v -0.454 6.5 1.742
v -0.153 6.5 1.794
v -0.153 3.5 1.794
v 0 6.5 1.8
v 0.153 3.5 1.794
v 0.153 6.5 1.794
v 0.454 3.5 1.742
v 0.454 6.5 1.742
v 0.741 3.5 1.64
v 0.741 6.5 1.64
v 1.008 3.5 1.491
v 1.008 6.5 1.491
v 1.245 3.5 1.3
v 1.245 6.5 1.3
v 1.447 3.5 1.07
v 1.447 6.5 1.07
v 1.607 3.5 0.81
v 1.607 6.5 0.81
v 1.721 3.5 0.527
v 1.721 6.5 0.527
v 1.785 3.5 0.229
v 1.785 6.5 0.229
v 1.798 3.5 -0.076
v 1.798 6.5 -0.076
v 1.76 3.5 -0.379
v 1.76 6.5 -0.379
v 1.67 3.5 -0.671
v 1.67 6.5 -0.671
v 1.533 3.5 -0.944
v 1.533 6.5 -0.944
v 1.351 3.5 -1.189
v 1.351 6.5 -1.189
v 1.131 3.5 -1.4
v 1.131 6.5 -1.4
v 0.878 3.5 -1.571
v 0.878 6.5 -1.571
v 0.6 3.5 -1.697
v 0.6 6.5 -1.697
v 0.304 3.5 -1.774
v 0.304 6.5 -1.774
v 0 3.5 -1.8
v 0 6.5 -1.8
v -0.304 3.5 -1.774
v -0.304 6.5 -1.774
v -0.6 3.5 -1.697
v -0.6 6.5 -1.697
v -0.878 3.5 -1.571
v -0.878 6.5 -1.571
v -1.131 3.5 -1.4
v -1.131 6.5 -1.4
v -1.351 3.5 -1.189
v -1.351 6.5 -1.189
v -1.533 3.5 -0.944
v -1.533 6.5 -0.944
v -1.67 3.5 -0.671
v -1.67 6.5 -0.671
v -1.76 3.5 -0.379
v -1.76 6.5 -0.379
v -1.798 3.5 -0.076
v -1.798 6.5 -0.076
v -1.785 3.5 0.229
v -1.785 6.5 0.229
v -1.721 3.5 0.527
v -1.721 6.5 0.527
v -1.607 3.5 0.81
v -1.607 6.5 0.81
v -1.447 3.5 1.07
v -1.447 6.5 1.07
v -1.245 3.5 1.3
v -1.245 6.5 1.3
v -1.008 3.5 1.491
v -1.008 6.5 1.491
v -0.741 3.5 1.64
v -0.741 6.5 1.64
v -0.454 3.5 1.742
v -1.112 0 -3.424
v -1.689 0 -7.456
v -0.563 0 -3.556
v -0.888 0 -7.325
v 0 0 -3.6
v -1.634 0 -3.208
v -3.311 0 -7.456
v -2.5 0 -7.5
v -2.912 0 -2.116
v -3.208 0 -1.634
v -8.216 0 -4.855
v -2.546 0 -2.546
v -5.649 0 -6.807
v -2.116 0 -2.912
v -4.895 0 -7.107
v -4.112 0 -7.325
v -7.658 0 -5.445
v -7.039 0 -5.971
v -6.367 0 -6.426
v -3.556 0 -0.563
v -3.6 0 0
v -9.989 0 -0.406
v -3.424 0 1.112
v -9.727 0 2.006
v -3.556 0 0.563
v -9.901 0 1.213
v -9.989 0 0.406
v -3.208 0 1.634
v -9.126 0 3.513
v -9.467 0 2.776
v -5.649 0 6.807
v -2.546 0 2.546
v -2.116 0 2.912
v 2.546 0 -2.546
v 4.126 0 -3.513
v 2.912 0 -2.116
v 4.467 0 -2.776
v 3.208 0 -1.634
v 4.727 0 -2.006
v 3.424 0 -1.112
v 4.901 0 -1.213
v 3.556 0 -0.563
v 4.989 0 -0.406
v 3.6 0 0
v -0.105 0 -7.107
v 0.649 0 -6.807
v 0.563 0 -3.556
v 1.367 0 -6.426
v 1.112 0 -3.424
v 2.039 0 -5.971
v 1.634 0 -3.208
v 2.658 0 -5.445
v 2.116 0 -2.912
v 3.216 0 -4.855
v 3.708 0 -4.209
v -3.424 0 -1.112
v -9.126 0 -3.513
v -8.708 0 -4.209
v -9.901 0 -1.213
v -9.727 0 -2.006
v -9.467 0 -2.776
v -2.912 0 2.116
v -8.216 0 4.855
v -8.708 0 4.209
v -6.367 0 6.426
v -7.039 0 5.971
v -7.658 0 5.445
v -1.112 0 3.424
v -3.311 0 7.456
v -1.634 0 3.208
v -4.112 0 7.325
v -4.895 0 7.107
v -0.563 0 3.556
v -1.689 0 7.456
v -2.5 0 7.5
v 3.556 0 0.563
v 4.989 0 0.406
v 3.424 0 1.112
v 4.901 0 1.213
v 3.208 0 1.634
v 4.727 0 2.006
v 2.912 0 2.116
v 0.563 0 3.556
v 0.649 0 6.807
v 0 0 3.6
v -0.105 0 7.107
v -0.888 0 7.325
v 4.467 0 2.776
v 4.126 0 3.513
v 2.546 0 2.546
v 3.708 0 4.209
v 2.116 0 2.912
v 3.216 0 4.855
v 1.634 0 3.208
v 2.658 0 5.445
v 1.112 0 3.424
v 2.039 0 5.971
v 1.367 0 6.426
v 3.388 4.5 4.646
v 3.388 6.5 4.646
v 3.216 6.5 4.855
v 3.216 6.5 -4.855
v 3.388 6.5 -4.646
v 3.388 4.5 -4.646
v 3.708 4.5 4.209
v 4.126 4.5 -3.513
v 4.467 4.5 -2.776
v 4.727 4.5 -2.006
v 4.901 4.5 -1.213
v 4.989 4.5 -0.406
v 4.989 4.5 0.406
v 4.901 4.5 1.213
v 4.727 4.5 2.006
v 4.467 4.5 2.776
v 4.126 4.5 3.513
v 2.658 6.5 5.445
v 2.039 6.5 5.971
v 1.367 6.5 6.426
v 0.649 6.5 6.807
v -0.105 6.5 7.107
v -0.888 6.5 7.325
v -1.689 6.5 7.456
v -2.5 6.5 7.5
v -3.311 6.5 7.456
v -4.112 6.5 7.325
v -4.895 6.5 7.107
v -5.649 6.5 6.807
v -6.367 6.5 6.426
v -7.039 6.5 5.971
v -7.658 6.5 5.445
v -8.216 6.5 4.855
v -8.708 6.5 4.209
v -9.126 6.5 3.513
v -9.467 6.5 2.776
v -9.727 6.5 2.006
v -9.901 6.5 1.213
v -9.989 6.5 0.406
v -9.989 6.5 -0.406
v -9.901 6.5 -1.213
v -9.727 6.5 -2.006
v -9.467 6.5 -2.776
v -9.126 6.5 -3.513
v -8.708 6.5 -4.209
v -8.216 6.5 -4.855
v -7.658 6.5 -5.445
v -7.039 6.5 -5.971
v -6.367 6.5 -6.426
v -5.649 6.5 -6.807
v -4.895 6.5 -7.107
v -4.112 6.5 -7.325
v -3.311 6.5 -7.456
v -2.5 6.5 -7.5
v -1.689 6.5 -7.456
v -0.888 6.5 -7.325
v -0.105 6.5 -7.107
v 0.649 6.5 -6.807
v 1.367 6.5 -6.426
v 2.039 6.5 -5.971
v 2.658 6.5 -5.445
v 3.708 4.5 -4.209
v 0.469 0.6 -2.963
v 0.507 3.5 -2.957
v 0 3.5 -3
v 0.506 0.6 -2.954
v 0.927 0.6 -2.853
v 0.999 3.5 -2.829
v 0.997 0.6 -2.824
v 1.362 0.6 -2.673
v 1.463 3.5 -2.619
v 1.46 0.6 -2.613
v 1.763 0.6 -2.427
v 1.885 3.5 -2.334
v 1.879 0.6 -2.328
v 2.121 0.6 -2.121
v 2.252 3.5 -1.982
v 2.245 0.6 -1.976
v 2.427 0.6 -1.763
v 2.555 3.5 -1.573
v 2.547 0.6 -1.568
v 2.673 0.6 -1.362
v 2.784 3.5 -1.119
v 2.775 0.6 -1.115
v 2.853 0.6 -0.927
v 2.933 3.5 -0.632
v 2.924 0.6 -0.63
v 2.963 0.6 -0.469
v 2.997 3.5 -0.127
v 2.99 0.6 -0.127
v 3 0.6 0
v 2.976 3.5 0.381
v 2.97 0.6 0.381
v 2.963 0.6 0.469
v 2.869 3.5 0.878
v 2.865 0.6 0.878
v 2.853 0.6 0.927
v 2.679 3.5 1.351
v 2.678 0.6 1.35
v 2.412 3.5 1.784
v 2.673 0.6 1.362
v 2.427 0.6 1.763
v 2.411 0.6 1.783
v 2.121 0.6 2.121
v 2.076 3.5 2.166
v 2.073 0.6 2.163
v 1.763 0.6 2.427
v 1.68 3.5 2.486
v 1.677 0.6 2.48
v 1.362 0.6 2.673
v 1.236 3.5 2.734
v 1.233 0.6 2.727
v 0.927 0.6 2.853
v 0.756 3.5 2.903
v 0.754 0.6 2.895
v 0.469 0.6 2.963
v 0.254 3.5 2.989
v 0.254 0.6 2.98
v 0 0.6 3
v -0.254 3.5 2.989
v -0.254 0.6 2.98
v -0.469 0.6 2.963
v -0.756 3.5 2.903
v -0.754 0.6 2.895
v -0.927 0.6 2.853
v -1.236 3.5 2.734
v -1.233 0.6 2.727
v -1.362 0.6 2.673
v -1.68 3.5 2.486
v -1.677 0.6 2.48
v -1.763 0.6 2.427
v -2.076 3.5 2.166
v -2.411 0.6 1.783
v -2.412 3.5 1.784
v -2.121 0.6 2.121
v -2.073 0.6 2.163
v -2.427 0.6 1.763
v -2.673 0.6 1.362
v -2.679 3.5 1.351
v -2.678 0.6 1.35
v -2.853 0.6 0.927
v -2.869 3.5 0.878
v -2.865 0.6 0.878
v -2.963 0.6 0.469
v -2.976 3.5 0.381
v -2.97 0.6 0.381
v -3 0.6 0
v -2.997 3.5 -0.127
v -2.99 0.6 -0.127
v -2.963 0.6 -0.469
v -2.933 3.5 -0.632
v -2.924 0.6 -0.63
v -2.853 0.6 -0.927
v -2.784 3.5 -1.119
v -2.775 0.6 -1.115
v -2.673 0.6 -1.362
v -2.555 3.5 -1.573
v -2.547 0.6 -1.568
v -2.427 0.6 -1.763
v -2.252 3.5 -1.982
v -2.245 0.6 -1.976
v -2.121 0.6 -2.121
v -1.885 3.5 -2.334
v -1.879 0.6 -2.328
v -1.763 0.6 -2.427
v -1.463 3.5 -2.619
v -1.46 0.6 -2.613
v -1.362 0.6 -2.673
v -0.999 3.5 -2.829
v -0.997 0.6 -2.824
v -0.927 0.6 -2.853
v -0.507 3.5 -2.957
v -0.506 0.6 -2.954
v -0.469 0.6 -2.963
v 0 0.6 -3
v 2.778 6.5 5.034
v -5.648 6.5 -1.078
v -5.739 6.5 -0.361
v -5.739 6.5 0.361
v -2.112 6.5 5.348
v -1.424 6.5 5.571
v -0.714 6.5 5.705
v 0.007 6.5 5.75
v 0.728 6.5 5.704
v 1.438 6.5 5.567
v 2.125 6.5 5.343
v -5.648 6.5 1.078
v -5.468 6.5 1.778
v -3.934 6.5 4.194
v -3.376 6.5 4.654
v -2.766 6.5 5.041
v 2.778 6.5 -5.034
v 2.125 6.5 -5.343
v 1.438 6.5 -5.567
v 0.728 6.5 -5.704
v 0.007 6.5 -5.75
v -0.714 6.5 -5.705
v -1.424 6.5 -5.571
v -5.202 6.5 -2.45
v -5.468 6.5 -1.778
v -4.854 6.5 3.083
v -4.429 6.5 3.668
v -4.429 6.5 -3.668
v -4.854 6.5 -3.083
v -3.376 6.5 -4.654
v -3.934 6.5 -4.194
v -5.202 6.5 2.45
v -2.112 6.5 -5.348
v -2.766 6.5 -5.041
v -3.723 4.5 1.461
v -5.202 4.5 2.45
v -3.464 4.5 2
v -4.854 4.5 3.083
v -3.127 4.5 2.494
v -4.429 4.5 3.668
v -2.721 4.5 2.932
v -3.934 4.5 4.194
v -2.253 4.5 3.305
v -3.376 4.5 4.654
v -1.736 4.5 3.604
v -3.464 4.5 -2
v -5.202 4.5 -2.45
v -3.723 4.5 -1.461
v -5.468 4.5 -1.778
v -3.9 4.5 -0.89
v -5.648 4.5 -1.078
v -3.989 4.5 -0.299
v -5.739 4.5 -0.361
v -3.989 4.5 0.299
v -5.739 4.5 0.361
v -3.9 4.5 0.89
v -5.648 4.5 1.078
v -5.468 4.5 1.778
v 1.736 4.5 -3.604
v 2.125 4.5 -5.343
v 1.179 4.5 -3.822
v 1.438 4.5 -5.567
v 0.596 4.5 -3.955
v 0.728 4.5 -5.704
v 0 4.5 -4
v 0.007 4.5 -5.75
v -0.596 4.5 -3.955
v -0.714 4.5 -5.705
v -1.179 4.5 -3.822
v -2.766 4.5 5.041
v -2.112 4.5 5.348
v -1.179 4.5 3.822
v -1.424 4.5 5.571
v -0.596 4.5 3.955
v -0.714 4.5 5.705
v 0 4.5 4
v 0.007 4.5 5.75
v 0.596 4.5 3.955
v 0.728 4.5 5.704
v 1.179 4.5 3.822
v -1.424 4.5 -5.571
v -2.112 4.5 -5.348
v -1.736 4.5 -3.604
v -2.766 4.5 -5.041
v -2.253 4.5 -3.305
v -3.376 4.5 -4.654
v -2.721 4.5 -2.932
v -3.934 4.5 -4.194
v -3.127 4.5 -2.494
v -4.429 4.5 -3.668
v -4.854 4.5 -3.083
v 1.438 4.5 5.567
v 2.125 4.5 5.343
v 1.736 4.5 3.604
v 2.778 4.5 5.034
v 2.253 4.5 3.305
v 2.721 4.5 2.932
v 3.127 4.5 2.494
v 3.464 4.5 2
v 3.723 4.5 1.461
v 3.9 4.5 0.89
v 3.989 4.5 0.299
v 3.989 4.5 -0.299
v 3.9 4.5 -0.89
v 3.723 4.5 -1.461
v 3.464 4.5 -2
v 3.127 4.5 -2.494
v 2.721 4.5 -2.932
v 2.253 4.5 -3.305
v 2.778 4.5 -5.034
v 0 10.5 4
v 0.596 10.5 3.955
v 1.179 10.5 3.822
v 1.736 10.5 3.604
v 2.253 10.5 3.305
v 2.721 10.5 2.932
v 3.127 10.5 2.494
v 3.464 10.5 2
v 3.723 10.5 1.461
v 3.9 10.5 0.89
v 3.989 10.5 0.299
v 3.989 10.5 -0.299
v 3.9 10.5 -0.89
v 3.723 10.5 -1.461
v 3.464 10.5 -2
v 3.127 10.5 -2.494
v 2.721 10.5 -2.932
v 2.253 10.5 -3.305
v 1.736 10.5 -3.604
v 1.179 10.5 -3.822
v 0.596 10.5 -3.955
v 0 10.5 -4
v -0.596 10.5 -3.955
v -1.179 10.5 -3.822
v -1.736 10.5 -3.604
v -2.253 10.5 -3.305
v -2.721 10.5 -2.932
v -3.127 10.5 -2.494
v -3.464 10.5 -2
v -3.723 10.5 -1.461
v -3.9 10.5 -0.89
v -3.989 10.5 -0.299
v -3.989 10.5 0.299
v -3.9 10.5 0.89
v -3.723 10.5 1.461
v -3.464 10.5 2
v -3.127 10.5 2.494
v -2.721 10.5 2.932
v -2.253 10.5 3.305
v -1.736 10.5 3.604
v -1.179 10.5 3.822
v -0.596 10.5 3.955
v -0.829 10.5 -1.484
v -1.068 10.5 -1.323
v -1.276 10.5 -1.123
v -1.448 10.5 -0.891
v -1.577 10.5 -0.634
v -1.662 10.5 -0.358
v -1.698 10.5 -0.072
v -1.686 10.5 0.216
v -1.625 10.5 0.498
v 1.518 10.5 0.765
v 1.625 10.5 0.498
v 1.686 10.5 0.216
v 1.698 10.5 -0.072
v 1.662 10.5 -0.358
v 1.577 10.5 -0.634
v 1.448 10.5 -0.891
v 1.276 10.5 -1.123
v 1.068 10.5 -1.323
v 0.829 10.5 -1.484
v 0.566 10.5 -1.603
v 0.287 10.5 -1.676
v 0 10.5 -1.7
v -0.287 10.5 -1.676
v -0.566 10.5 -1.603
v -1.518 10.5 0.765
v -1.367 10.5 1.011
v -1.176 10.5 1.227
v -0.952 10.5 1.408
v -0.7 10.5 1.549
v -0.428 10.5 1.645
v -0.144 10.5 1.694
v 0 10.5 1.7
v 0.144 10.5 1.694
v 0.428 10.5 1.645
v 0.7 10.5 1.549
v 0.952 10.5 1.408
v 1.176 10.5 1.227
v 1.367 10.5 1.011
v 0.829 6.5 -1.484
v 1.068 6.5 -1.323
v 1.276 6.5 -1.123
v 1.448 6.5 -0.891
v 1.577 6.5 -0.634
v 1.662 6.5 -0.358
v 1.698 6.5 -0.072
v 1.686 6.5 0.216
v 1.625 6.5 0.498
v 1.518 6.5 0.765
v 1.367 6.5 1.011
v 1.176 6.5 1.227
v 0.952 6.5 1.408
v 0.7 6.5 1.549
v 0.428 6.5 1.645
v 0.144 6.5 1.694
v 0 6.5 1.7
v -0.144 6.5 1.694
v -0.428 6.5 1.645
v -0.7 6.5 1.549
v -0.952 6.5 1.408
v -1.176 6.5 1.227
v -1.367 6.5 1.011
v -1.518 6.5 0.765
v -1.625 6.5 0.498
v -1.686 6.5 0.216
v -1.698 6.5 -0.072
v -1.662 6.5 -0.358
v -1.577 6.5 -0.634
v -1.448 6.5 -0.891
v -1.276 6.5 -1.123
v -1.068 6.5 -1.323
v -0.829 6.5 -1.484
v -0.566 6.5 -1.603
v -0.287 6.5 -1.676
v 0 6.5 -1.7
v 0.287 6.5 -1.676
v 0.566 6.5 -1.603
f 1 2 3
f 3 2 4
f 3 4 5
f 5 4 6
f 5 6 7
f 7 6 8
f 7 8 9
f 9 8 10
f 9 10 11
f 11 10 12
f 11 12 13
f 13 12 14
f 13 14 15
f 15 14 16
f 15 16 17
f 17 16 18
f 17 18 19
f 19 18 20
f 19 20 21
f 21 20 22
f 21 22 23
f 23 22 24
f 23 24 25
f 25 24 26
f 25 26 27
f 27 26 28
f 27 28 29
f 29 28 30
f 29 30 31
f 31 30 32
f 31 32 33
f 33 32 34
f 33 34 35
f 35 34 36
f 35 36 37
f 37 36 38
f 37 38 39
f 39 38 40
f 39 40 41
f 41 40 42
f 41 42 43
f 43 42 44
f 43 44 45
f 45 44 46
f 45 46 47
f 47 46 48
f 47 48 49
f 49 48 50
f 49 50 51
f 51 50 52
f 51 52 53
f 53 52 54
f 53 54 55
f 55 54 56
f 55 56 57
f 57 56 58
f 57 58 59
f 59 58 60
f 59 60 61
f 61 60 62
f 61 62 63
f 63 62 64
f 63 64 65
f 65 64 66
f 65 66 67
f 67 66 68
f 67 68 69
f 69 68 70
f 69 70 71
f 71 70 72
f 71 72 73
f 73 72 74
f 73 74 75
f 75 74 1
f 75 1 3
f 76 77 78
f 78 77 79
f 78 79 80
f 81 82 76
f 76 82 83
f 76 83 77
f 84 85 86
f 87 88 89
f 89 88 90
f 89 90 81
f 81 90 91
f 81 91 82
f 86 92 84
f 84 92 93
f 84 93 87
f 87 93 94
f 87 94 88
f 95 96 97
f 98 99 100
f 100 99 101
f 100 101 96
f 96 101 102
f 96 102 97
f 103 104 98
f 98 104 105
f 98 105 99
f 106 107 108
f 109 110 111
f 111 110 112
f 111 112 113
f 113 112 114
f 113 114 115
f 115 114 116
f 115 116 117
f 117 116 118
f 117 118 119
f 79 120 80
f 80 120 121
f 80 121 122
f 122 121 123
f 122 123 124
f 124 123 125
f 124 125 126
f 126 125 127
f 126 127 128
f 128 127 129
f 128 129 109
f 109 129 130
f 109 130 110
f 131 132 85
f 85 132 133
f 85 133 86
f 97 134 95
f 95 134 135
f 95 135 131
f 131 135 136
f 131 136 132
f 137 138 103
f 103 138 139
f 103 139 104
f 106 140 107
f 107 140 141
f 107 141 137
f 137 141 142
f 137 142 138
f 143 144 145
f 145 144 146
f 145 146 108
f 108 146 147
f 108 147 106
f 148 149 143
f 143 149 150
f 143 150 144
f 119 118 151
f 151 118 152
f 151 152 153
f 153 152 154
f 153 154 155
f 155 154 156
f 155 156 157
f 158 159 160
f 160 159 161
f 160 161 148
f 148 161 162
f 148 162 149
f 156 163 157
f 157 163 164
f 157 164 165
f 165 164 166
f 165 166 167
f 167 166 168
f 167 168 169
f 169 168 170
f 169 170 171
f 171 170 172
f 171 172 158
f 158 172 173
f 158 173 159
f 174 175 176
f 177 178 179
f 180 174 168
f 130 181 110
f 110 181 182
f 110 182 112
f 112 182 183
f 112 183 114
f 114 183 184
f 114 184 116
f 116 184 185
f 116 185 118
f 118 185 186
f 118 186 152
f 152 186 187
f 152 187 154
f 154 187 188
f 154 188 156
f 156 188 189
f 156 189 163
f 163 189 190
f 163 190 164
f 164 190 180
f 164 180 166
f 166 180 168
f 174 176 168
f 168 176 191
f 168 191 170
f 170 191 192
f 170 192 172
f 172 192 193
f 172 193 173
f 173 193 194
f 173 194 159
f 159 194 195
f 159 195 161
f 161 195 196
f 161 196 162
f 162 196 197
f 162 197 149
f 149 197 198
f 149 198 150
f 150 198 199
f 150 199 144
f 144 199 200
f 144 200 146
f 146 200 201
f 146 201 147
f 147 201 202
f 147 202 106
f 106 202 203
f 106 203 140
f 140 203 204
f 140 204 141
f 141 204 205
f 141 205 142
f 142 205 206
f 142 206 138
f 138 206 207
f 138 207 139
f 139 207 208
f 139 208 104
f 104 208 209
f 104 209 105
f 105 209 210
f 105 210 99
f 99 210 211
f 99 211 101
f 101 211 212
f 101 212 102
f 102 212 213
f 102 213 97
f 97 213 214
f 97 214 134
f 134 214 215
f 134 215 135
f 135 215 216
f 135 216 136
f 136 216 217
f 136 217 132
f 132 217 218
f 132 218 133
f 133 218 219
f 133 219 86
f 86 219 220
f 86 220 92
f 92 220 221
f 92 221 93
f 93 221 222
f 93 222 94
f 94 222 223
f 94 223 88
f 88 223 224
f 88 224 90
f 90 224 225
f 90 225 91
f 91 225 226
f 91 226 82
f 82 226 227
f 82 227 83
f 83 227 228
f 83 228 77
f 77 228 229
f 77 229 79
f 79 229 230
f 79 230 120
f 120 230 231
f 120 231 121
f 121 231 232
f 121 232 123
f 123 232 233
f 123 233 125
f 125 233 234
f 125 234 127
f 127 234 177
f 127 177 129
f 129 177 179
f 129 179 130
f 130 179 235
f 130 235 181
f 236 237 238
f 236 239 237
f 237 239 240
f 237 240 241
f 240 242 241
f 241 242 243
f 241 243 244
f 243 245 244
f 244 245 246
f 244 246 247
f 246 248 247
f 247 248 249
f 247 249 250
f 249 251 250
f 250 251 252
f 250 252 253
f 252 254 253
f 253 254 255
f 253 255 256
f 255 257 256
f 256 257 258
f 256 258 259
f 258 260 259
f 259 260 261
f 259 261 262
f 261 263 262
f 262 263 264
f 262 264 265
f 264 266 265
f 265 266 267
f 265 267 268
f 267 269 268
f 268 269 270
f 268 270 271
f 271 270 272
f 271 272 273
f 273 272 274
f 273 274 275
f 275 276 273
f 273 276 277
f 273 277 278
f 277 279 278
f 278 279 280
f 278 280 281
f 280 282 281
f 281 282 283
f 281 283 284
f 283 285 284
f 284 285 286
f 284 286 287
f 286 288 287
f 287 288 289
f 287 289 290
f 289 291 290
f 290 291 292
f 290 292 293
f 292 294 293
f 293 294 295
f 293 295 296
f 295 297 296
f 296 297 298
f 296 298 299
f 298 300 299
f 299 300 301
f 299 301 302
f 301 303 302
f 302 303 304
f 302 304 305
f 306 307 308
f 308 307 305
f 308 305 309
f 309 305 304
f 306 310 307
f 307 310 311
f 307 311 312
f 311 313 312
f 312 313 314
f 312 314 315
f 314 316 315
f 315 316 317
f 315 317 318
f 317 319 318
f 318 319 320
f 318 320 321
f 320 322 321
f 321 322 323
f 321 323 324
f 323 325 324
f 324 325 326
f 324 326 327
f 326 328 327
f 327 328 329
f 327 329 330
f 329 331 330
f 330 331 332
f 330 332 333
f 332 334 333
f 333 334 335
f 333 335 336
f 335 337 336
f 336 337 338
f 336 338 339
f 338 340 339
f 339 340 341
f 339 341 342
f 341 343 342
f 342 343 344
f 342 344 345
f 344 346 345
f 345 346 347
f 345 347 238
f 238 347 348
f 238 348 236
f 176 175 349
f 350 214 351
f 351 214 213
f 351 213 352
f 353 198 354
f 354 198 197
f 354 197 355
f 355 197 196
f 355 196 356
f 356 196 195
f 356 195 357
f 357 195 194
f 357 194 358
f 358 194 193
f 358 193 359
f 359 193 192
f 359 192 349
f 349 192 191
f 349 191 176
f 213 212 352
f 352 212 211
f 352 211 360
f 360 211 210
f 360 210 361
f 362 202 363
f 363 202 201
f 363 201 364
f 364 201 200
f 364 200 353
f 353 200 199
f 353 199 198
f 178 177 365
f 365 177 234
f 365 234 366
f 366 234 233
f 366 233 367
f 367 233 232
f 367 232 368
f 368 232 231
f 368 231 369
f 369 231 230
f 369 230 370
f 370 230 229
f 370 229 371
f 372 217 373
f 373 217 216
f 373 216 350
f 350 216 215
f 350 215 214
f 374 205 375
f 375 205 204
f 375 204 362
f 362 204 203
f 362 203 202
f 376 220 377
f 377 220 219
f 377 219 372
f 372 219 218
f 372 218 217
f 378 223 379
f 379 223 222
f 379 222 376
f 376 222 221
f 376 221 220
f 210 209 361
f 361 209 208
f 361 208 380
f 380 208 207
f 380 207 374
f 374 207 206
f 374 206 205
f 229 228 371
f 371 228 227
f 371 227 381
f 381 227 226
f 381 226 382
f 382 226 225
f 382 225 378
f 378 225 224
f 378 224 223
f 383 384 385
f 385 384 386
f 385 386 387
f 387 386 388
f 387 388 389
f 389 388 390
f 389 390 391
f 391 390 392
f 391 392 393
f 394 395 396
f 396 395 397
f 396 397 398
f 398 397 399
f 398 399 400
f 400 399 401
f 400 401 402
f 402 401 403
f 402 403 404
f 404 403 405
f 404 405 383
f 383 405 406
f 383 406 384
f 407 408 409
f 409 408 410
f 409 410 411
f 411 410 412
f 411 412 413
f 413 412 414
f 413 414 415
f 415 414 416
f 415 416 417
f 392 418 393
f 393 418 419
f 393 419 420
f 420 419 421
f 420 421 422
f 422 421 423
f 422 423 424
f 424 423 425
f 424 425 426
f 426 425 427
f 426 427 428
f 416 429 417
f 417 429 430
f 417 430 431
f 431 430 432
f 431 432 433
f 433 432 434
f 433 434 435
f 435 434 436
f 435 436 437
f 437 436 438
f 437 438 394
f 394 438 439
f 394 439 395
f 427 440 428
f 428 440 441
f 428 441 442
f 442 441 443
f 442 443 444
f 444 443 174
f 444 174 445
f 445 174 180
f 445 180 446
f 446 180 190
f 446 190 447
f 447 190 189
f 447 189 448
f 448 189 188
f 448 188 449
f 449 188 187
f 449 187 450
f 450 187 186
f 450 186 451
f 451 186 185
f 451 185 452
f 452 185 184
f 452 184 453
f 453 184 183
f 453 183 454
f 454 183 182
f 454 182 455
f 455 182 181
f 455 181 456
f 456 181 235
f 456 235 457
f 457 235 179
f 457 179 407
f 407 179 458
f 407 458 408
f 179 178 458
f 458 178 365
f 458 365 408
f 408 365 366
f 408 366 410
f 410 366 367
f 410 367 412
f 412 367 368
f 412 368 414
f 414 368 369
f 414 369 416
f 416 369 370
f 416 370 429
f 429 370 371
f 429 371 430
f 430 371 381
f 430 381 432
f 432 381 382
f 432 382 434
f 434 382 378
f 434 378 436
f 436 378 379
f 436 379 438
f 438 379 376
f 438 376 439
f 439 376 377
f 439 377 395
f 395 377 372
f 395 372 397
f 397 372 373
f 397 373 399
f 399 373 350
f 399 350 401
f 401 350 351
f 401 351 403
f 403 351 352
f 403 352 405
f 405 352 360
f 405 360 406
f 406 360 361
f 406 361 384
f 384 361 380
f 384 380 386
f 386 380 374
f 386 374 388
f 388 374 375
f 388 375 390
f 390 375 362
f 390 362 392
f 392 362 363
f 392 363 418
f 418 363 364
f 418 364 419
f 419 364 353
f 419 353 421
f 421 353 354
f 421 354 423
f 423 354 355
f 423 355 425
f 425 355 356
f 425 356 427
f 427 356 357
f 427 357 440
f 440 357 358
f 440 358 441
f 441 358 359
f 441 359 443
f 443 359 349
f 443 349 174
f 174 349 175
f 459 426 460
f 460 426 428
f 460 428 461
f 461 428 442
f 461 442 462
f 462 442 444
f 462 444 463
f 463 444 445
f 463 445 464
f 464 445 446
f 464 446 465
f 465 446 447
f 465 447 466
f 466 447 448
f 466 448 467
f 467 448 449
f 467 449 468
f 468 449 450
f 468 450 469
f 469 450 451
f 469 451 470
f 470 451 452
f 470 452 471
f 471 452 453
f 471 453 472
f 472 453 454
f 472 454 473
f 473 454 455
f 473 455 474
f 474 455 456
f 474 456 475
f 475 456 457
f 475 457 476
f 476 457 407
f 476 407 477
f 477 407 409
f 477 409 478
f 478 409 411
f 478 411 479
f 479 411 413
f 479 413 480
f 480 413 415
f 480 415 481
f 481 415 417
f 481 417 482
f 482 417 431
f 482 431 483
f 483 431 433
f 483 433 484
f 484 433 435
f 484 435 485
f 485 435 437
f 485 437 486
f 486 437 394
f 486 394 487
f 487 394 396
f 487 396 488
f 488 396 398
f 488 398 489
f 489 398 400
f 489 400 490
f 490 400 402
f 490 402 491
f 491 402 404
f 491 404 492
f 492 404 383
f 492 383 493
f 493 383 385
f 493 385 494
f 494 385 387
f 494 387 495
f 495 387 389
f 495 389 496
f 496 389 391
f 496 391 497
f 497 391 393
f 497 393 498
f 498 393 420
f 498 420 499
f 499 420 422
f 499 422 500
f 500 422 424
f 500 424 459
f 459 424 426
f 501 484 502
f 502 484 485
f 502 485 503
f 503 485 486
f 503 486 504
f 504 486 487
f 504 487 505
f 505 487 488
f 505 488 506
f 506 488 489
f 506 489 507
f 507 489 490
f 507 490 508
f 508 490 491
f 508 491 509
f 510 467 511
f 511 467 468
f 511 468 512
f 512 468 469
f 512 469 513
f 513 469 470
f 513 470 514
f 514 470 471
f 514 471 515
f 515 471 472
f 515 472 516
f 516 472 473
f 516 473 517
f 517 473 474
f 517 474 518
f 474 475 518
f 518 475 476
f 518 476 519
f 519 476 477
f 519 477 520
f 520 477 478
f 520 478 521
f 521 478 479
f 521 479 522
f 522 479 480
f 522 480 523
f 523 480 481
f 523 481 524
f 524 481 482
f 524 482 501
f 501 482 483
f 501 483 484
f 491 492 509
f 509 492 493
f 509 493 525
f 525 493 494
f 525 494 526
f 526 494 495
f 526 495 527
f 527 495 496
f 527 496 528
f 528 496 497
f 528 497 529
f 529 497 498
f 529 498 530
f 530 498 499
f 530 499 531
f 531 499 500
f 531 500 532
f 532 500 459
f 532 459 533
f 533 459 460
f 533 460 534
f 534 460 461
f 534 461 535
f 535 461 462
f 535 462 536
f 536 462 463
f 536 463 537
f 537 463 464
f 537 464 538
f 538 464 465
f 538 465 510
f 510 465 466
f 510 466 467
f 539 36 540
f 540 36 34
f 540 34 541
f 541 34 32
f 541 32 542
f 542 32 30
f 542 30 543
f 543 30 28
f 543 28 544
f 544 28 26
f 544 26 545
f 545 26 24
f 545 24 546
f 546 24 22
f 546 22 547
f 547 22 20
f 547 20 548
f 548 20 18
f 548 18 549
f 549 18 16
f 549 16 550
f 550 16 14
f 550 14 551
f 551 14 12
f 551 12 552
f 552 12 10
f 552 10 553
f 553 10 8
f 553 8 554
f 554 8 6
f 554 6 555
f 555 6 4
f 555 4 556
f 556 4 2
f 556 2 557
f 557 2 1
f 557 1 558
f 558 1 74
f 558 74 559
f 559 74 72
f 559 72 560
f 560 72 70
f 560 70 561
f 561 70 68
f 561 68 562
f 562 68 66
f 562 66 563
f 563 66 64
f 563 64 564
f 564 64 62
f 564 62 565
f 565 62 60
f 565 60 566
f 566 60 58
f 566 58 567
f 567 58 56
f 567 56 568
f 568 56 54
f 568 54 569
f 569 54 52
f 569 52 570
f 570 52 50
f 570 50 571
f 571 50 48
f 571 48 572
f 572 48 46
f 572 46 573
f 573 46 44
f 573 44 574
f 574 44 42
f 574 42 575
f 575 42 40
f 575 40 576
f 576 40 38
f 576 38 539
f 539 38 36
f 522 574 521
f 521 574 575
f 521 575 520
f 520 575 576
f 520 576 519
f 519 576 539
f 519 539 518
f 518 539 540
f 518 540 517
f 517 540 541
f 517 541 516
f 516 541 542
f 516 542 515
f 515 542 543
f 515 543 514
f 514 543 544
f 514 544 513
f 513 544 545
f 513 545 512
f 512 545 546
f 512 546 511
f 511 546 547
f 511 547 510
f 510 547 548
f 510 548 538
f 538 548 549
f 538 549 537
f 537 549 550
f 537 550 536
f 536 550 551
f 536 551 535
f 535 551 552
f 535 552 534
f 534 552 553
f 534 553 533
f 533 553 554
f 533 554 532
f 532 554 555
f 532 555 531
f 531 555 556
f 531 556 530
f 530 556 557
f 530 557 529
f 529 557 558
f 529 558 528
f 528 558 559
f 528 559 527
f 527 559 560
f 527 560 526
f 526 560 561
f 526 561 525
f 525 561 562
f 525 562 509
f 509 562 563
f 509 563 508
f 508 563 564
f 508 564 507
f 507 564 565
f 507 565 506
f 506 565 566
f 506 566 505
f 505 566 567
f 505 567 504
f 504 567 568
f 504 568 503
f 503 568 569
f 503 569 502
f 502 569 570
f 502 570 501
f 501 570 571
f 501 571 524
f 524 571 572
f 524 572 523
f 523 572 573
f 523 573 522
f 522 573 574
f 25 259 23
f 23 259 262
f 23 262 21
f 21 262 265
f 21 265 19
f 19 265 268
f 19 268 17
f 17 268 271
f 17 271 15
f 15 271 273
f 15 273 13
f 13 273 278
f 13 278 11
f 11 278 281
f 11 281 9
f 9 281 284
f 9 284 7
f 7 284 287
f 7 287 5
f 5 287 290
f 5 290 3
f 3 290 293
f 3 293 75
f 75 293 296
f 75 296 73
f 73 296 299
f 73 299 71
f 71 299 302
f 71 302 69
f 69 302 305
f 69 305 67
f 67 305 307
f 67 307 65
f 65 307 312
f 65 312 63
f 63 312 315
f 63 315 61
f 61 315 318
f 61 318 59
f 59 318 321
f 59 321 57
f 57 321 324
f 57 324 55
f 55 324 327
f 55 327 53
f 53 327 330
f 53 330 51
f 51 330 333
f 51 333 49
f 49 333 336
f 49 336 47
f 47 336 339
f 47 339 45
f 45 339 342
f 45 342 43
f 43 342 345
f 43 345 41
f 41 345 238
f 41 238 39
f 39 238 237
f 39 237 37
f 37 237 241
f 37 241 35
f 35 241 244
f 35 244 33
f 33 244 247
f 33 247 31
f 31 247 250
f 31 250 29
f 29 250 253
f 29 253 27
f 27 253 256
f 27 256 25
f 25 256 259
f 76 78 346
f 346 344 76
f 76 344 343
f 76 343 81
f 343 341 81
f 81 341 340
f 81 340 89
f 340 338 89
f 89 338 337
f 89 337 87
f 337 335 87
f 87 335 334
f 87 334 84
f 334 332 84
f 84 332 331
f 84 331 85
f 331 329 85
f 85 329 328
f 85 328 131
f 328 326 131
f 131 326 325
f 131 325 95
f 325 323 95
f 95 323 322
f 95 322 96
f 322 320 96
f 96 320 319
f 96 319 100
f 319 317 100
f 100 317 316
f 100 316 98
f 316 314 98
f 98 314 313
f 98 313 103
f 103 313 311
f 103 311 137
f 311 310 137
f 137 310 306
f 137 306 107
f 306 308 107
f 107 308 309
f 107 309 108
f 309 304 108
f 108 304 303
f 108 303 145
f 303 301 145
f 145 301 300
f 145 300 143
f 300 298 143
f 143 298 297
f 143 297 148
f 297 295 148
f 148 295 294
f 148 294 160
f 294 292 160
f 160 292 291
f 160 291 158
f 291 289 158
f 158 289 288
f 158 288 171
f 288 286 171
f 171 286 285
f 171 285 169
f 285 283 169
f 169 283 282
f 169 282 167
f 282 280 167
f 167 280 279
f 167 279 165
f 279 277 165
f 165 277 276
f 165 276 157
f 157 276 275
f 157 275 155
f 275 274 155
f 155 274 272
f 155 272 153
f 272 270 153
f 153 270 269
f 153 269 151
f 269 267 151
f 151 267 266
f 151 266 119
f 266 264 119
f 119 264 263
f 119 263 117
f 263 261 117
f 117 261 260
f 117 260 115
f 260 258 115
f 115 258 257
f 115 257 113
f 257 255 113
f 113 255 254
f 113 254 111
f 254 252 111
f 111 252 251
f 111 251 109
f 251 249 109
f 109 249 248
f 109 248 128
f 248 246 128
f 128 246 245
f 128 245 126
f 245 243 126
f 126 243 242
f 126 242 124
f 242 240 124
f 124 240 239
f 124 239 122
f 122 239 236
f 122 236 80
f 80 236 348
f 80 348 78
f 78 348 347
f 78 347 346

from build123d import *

# Parameters (mm, degrees)
SKETCH_1_R          = 7.5
SKETCH_1_R_2        = 3
EXTRUDE_1_DEPTH     = 3
SKETCH_2_R          = 7.5
SKETCH_2_R_2        = 1.8
EXTRUDE_2_DEPTH     = 3.5
SKETCH_3_R          = 5.75
SKETCH_3_R_2        = 4
CUT_EXTRUDE_1_DEPTH = 2
SKETCH_4_R          = 4
SKETCH_4_R_2        = 1.7
EXTRUDE_3_DEPTH     = 4
SKETCH_5_R          = 3
CUT_EXTRUDE_2_DEPTH = 3.5
CHAMFER_1_SIZE      = 0.6


with BuildPart() as part:
    # Эскиз1 → Бобышка-Вытянуть1 (new body)
    with BuildSketch(Plane(origin=(0, 0, 0), x_dir=(1, 0, 0), z_dir=(0, 1, 0))):
        with Locations((-2.5, 0)):
            Circle(SKETCH_1_R)
        Circle(SKETCH_1_R_2, mode=Mode.SUBTRACT)
    extrude(amount=EXTRUDE_1_DEPTH)

    # Эскиз2 → Бобышка-Вытянуть2 (add)
    with BuildSketch(Plane(origin=(0, 3, 0), x_dir=(1, 0, 0), z_dir=(0, 1, 0))):
        with Locations((-2.5, 0)):
            Circle(SKETCH_2_R)
        Circle(SKETCH_2_R_2, mode=Mode.SUBTRACT)
    extrude(amount=EXTRUDE_2_DEPTH)

    # Эскиз3 → Вырез-Вытянуть1 (cut)
    with BuildSketch(Plane(origin=(0, 6.5, 0), x_dir=(1, 0, 0), z_dir=(0, 1, 0))):
        Circle(SKETCH_3_R)
        Circle(SKETCH_3_R_2, mode=Mode.SUBTRACT)
    extrude(amount=-CUT_EXTRUDE_1_DEPTH, mode=Mode.SUBTRACT)

    # Эскиз4 → Бобышка-Вытянуть3 (add)
    with BuildSketch(Plane(origin=(0, 6.5, 0), x_dir=(1, 0, 0), z_dir=(0, 1, 0))):
        Circle(SKETCH_4_R)
        Circle(SKETCH_4_R_2, mode=Mode.SUBTRACT)
    extrude(amount=EXTRUDE_3_DEPTH)

    # Эскиз5 → Вырез-Вытянуть2 (cut)
    with BuildSketch(Plane.XZ):
        Circle(SKETCH_5_R)
    extrude(amount=-CUT_EXTRUDE_2_DEPTH, mode=Mode.SUBTRACT)

    # Фаска1
    chamfer_1_edges = [part.edges().sort_by_distance(p)[0] for p in [
        (-3, 0, 0),
    ]]
    chamfer(chamfer_1_edges, length=CHAMFER_1_SIZE)


solid = part.part
